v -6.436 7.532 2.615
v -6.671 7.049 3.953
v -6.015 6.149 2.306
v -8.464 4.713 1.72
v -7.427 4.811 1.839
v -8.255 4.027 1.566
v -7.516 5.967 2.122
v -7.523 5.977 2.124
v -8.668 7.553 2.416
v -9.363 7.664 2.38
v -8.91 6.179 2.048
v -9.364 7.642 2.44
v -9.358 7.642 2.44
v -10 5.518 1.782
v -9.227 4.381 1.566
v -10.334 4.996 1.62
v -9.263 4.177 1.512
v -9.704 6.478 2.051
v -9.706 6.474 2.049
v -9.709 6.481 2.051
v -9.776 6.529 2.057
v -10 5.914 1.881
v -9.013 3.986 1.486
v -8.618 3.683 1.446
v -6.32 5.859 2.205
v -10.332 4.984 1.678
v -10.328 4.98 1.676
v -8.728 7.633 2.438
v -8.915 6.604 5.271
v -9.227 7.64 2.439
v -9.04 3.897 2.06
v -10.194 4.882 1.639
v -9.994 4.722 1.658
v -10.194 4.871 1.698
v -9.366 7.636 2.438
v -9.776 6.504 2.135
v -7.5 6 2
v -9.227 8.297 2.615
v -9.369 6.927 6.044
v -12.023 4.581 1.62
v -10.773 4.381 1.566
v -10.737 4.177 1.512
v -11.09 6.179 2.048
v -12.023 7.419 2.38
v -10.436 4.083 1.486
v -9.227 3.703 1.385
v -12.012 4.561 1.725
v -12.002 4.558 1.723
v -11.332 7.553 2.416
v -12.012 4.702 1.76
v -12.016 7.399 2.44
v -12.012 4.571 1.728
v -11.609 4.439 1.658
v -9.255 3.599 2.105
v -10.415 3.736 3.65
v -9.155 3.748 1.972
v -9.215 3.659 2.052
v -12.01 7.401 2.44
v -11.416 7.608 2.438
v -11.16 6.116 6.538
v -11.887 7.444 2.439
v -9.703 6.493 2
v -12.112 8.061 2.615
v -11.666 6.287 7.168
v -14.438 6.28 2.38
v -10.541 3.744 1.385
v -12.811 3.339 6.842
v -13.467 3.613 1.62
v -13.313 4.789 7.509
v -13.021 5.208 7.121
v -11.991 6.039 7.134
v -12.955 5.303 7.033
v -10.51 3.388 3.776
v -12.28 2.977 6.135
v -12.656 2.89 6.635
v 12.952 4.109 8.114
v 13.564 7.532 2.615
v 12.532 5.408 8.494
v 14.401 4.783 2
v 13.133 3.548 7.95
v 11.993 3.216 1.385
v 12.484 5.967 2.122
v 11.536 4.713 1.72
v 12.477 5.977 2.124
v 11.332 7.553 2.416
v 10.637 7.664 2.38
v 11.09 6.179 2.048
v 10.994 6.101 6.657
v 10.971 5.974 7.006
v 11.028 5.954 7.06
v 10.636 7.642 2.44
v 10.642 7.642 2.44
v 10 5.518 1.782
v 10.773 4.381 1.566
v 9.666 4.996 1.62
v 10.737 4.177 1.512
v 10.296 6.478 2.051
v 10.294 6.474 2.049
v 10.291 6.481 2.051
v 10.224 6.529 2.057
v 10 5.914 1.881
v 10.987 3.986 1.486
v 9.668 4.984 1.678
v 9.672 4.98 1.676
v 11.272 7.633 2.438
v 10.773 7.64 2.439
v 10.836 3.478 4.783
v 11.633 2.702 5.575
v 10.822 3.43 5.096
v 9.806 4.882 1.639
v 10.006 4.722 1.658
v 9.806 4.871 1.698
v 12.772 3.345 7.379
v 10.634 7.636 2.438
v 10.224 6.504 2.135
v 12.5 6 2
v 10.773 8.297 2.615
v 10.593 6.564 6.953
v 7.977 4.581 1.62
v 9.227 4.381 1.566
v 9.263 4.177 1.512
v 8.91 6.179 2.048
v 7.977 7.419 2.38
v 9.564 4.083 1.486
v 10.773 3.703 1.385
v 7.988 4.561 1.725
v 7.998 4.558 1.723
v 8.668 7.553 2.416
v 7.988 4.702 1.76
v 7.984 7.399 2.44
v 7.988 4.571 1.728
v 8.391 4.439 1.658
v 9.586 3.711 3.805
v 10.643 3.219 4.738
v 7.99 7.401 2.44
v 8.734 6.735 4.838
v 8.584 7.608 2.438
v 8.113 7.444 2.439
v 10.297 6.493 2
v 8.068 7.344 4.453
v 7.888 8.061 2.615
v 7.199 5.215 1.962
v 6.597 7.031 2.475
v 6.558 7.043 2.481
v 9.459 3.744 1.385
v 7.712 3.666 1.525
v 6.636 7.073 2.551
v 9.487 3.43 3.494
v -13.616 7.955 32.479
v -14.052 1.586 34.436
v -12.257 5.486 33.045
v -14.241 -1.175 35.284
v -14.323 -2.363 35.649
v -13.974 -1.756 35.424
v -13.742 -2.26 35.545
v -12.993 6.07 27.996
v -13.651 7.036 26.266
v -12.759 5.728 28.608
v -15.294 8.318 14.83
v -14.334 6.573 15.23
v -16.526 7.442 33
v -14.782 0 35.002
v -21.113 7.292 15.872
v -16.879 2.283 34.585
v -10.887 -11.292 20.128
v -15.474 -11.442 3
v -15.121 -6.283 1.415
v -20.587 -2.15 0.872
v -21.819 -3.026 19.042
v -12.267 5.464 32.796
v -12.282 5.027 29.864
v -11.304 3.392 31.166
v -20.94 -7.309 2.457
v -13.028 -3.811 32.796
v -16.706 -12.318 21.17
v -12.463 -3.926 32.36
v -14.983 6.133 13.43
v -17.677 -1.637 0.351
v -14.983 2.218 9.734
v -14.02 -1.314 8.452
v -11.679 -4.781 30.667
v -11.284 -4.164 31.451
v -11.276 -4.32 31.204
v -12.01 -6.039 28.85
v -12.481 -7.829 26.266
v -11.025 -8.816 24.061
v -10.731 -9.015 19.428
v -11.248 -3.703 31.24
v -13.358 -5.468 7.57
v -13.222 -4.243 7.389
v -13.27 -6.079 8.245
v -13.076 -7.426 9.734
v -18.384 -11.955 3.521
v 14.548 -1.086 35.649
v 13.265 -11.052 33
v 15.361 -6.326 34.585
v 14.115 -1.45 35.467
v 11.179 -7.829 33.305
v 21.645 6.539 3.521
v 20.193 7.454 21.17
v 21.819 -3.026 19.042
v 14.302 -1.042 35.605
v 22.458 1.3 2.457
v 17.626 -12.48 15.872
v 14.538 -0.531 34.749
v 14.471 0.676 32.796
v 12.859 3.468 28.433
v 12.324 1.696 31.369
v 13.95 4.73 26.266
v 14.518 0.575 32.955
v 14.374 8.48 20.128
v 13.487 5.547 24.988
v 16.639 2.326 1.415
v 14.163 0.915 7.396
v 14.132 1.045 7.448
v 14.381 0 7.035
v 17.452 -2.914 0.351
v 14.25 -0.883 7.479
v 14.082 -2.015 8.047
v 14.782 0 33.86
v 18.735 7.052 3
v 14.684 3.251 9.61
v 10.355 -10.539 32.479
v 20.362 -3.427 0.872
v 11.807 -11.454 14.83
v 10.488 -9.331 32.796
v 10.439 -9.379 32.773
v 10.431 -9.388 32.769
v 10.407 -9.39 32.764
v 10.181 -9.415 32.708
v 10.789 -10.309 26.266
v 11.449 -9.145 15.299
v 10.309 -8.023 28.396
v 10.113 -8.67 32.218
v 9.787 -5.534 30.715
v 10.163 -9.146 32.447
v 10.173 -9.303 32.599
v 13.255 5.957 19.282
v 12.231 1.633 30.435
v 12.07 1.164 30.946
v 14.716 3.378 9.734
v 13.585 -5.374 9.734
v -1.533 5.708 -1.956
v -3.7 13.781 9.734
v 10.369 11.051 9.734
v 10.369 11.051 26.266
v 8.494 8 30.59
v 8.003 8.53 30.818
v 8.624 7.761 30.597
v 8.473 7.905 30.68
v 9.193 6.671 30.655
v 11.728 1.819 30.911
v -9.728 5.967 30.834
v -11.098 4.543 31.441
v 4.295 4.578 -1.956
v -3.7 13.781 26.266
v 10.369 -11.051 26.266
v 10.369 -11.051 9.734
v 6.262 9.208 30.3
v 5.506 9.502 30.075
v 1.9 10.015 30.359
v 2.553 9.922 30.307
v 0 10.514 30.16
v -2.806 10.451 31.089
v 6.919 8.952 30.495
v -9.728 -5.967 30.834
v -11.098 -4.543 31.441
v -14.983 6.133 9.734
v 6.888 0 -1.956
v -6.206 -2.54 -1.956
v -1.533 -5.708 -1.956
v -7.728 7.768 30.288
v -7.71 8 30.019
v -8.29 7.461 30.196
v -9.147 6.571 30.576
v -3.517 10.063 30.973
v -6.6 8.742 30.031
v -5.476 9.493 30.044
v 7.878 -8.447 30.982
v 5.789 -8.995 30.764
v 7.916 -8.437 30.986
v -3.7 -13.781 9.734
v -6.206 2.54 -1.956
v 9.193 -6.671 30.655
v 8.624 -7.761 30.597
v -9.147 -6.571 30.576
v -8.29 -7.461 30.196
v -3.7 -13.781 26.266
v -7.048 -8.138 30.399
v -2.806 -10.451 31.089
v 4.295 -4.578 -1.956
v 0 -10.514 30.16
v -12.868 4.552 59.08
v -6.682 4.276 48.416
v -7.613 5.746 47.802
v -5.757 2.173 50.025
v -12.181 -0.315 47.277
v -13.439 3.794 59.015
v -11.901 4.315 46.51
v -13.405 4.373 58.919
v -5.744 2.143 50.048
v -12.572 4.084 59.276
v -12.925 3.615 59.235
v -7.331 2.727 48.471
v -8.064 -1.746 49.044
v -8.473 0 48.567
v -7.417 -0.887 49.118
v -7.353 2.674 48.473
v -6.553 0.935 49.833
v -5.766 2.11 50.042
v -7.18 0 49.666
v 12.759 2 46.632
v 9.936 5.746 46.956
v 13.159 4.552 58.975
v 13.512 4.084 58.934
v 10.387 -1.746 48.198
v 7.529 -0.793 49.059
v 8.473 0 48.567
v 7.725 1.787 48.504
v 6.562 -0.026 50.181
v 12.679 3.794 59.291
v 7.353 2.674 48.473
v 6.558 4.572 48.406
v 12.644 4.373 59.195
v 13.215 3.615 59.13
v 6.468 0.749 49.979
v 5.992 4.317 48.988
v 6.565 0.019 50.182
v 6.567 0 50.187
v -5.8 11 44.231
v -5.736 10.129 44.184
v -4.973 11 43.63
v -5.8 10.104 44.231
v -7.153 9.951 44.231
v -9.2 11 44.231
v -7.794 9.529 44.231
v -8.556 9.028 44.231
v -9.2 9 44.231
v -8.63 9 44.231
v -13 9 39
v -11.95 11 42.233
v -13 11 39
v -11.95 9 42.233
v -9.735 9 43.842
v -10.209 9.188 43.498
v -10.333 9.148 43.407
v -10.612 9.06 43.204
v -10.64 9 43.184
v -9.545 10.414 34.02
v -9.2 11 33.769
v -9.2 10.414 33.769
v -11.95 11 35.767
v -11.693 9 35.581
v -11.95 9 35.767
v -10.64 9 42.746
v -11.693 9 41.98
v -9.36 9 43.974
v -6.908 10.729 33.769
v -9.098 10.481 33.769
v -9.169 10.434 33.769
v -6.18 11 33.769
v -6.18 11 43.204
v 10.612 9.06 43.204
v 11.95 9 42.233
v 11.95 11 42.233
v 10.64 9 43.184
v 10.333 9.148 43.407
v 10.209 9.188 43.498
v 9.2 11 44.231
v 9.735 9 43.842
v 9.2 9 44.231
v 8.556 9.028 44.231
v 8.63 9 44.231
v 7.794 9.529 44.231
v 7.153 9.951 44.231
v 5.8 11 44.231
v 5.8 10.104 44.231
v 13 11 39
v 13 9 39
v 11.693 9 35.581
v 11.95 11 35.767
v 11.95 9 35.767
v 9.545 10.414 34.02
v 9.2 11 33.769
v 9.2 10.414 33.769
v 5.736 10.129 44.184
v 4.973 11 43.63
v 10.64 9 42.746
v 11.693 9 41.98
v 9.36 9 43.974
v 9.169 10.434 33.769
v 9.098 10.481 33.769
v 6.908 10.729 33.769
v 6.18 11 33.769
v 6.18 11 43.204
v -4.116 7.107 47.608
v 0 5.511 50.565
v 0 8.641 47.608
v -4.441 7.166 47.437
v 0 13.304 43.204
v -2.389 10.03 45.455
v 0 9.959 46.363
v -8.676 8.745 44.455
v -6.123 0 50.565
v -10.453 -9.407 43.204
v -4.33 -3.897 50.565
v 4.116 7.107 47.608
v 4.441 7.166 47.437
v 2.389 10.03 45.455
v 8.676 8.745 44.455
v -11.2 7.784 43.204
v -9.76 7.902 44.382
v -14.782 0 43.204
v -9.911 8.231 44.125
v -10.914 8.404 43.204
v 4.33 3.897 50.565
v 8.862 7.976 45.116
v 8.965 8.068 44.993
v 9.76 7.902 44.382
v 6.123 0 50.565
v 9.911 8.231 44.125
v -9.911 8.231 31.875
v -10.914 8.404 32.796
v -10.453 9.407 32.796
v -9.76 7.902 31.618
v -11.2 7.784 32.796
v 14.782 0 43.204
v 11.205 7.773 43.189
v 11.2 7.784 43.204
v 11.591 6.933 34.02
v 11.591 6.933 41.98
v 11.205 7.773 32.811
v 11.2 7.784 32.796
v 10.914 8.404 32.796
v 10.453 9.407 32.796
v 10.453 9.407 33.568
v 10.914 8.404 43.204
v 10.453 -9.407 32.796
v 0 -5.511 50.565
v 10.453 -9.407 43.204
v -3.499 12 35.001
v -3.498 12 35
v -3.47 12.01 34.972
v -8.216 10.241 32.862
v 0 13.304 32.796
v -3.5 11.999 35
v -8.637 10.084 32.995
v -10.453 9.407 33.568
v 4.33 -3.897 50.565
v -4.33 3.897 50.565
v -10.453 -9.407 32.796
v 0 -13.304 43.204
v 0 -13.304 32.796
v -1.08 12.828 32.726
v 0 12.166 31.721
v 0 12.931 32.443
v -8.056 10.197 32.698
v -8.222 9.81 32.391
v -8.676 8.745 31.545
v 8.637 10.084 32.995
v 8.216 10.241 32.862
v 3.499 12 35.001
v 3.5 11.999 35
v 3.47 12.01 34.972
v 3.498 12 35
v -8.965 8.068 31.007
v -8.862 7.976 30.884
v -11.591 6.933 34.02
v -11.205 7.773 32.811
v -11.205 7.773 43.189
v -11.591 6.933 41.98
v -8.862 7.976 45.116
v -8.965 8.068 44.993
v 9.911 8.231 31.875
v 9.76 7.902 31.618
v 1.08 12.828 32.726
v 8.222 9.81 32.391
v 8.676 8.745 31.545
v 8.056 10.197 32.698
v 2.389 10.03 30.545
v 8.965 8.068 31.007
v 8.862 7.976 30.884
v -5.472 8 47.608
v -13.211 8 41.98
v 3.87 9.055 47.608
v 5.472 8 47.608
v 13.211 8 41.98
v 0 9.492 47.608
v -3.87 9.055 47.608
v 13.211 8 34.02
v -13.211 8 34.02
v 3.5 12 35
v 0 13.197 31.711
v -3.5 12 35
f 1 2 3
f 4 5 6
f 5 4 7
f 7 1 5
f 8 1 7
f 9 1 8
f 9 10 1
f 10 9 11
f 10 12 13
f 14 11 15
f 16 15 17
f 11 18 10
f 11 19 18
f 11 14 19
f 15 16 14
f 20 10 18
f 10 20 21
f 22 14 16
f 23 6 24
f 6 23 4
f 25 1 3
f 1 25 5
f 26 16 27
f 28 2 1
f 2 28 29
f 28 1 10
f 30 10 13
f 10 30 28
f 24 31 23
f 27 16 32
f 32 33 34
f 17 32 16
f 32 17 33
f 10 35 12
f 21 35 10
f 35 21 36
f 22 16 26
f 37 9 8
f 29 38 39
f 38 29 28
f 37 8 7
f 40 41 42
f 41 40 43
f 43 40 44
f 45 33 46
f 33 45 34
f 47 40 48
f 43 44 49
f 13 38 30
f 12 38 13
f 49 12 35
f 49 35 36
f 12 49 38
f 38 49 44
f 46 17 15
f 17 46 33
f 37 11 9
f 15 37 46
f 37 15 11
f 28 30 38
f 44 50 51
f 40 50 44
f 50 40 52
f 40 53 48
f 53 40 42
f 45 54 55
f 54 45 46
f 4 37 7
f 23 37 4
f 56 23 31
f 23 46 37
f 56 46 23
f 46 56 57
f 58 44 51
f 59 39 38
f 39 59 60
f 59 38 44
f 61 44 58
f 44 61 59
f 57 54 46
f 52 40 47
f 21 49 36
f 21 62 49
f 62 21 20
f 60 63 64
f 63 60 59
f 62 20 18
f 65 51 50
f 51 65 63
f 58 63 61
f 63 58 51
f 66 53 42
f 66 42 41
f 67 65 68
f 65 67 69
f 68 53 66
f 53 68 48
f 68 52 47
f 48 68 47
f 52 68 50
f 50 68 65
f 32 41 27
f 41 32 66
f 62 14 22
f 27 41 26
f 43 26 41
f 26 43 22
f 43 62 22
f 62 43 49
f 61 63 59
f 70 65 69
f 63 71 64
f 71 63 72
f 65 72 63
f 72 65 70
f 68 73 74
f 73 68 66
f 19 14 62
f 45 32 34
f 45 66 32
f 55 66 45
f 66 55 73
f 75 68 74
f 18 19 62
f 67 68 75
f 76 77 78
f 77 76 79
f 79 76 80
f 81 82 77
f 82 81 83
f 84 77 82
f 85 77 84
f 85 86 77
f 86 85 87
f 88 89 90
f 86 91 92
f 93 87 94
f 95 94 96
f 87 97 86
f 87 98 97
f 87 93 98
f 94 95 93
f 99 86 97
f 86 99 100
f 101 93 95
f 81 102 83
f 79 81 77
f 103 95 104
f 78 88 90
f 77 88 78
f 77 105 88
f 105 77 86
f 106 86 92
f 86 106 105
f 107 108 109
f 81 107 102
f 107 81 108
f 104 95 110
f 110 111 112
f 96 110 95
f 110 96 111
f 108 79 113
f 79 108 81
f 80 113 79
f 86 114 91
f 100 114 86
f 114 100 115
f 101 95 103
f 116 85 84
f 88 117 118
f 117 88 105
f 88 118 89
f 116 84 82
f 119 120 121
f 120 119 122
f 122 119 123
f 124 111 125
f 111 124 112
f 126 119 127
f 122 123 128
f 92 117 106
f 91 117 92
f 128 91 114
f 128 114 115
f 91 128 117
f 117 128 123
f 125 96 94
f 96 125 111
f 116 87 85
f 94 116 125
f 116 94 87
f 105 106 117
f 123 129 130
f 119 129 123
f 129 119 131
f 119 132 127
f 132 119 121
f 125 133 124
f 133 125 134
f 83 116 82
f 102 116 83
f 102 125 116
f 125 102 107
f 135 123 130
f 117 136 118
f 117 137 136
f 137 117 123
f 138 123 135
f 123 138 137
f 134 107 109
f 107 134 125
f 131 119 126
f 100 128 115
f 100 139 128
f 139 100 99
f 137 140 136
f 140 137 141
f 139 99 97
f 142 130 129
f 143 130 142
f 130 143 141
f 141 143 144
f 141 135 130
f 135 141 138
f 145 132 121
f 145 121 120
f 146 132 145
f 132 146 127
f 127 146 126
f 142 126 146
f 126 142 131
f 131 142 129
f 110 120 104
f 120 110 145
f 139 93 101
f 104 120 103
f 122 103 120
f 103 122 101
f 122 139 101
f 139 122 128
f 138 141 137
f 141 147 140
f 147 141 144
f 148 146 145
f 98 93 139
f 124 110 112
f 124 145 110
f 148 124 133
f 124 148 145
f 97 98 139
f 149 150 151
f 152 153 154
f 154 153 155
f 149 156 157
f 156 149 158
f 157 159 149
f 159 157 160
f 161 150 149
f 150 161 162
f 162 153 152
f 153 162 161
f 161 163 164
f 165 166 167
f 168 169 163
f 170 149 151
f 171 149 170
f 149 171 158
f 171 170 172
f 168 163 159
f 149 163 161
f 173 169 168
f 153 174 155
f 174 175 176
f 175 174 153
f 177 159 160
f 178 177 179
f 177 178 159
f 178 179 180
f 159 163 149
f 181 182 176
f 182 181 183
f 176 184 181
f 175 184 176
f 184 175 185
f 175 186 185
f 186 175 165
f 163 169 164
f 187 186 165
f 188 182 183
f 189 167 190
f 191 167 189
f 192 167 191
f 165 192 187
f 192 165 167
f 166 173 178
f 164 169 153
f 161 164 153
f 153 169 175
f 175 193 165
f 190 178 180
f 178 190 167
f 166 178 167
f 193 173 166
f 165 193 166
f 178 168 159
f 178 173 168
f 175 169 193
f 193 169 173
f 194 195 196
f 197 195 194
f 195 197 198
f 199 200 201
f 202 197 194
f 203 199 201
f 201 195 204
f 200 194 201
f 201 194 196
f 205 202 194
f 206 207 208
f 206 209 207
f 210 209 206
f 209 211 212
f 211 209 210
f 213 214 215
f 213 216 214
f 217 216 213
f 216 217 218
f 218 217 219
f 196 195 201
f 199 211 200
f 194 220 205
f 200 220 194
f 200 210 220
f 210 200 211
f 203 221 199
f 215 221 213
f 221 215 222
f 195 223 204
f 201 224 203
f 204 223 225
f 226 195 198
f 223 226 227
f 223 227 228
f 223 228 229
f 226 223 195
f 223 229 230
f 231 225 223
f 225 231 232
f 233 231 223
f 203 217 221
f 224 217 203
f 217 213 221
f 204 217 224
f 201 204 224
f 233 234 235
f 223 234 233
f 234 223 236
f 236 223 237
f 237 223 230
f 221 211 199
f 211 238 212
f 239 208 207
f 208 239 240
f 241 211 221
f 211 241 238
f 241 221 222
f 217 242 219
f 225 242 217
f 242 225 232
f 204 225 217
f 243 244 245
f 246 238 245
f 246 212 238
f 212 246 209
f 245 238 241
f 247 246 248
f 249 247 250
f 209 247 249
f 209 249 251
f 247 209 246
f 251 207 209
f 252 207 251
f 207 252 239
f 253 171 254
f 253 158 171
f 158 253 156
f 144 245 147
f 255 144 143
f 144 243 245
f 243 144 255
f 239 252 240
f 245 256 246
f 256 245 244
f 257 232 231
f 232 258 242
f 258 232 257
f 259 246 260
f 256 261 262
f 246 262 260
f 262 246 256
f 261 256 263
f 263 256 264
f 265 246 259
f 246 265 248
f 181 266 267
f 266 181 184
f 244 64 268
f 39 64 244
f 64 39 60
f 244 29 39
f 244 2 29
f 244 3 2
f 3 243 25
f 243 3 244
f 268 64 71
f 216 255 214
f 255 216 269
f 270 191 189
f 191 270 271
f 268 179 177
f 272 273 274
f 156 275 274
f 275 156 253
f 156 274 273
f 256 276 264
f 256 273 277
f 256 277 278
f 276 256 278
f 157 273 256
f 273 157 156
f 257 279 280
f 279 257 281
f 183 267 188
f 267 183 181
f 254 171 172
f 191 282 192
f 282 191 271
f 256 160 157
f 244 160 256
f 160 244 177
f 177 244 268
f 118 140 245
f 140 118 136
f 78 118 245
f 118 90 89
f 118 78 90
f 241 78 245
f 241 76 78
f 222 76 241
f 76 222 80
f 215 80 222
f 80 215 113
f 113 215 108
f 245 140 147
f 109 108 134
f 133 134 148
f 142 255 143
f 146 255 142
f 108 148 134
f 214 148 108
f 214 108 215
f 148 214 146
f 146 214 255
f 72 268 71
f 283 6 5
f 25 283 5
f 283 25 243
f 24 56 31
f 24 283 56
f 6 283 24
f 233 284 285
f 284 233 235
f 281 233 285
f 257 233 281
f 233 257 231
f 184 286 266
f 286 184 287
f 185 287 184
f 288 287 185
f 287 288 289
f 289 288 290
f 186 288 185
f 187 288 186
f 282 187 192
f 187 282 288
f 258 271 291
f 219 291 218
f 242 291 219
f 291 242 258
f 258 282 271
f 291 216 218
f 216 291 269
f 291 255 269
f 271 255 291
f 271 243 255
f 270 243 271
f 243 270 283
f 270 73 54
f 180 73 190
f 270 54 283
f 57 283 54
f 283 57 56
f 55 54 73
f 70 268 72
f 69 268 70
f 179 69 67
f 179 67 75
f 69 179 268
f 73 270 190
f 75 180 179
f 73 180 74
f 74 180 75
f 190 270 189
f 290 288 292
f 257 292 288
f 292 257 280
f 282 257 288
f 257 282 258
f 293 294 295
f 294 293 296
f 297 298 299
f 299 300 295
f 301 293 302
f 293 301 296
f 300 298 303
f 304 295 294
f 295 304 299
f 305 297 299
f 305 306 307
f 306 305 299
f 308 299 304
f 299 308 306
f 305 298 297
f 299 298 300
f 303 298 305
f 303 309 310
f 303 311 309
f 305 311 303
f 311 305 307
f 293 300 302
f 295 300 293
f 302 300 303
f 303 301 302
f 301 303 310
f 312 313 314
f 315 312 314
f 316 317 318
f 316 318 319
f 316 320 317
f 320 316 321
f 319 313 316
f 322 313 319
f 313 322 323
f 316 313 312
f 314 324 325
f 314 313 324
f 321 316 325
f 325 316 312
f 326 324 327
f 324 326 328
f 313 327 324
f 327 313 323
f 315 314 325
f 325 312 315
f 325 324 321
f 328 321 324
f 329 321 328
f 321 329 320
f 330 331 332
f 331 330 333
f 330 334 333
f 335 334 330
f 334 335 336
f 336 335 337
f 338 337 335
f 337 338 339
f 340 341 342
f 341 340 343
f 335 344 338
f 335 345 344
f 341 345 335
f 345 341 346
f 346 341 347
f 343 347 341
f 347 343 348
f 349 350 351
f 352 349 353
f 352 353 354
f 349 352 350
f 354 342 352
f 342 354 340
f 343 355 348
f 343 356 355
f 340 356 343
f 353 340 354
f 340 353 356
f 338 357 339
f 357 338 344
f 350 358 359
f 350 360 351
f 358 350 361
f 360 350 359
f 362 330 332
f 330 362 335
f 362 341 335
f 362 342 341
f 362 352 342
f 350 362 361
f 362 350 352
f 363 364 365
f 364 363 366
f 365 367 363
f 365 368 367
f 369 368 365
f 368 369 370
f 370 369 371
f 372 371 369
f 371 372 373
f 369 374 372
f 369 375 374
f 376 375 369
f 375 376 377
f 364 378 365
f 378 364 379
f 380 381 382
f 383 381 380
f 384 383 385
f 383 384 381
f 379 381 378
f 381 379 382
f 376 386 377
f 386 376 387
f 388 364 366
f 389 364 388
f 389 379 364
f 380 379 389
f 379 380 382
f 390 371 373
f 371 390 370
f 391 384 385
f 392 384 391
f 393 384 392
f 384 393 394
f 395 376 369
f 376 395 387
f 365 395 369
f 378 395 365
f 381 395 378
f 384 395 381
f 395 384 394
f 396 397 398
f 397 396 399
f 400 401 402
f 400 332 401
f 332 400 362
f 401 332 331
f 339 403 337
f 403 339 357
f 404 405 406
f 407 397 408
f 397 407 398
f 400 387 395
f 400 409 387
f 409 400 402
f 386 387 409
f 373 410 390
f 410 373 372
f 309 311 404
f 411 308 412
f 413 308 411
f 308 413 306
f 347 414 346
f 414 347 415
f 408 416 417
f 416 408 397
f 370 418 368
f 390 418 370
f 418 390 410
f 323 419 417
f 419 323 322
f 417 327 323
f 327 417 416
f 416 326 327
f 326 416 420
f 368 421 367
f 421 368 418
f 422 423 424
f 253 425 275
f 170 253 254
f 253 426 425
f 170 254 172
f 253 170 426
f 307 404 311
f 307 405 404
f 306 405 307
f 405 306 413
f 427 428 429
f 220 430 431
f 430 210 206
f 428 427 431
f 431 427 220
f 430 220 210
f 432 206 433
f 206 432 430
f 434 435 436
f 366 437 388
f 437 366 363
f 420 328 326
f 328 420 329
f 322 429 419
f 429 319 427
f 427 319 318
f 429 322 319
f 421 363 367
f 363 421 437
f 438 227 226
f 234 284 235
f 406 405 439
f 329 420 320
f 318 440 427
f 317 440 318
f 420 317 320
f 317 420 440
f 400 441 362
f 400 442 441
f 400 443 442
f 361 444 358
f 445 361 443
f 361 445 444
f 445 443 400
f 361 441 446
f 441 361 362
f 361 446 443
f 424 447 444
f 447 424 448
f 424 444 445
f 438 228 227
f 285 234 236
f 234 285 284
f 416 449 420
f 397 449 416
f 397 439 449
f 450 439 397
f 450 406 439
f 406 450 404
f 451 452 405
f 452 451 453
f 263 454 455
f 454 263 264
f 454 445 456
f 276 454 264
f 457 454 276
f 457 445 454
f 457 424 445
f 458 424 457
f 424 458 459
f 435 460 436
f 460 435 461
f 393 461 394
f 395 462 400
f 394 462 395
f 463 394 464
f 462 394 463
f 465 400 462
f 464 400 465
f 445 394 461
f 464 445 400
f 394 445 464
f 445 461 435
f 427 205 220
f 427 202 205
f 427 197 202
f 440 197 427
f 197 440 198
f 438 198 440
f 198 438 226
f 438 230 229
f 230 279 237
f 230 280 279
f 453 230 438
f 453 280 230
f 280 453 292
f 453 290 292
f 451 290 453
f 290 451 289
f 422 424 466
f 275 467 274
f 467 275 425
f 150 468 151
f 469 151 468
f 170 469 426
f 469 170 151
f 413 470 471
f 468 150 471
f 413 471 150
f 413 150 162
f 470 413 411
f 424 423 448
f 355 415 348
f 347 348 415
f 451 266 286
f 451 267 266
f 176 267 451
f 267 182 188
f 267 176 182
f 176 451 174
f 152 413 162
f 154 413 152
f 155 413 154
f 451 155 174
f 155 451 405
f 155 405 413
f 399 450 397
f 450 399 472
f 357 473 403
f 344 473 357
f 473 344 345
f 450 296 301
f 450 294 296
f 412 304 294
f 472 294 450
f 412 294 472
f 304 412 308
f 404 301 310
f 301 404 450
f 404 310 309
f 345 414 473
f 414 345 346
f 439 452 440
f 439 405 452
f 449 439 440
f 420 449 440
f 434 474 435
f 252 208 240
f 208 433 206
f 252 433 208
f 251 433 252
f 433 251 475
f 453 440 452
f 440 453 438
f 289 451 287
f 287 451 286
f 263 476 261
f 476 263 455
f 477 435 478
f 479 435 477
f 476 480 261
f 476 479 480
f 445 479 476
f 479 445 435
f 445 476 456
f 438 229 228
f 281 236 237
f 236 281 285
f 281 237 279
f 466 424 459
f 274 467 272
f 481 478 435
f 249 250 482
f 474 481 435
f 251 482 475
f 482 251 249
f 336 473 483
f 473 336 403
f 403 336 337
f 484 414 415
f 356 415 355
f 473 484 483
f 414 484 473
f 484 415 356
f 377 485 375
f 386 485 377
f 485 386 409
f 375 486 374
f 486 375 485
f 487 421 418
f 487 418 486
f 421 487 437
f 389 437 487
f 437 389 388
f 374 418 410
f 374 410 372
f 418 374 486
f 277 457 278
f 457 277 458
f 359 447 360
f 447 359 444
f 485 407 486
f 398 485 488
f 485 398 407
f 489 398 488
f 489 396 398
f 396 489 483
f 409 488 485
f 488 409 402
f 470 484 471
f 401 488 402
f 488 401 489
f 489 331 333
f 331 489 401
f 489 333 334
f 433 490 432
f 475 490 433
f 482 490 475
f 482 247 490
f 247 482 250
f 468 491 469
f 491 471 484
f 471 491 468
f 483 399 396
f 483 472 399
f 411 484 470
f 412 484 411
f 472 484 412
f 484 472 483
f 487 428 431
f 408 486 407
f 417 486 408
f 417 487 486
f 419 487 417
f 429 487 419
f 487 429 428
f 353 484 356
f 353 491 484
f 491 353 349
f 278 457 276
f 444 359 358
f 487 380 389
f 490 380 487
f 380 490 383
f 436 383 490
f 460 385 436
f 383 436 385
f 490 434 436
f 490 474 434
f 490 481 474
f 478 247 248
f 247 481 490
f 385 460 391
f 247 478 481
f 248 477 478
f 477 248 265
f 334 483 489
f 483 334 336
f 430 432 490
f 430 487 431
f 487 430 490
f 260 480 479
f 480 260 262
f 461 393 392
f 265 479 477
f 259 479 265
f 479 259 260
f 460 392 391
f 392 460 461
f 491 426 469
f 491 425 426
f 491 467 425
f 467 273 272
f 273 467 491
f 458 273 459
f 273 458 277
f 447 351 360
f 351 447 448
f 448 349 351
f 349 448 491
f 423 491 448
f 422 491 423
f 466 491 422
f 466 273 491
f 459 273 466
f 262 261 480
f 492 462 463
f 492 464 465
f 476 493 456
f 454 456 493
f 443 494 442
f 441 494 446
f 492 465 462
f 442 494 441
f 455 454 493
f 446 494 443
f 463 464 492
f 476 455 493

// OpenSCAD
// Low-Poly Wise Owl
// Date: 2026-07-24

// Palette
color_body = [0.45, 0.32, 0.23];       // Warm brown body
color_chest = [0.90, 0.85, 0.75];      // Cream chest feathers
color_eye_white = [0.98, 0.98, 0.98];  // White eye ring
color_eye_iris = [0.95, 0.70, 0.10];   // Gold iris
color_eye_pupil = [0.10, 0.10, 0.12];  // Dark pupil
color_beak = [0.95, 0.55, 0.10];       // Orange beak/feet
color_wing = [0.35, 0.24, 0.16];       // Darker brown wing
color_tuft = [0.30, 0.20, 0.12];       // Ear tufts

$fn = 8; // Low-poly aesthetic

module owl_foot() {
    color(color_beak) {
        for (a = [-20, 0, 20]) {
            rotate([0, 0, a])
            translate([0, 6, 2])
            rotate([15, 0, 0])
            cylinder(r1=2.5, r2=1, h=12, center=false, $fn=5);
        }
    }
}

module owl_body() {
    // Feet
    translate([-10, 0, 0]) owl_foot();
    translate([10, 0, 0]) owl_foot();

    // Main Body
    color(color_body) {
        translate([0, 0, 18])
        scale([1, 0.85, 1.2])
        sphere(r=18, $fn=7);
    }

    // Chest feathers
    color(color_chest) {
        translate([0, 6, 18])
        scale([0.7, 0.5, 0.9])
        sphere(r=16, $fn=7);
    }

    // Wings
    for (side = [-1, 1]) {
        color(color_wing) {
            translate([side * 16, -2, 18])
            rotate([side * 15, -side * 10, -side * 10])
            scale([0.4, 0.8, 1.3])
            sphere(r=15, $fn=6);
        }
    }
}

module owl_head() {
    // Head base
    color(color_body) {
        translate([0, 0, 38])
        scale([1, 0.9, 0.85])
        sphere(r=16, $fn=8);
    }

    // Facial disc / eye region
    color(color_chest) {
        translate([0, 8, 38])
        scale([1.1, 0.3, 0.8])
        sphere(r=13, $fn=8);
    }

    // Ear tufts / feather horns
    for (side = [-1, 1]) {
        color(color_tuft) {
            translate([side * 9, 2, 48])
            rotate([-10, side * 20, 0])
            cylinder(r1=4, r2=0.5, h=12, $fn=5);
        }
    }

    // Eyes (Large wise eyes)
    for (side = [-1, 1]) {
        translate([side * 7.5, 10, 39]) rotate([90, 0, 0]) {
            // White outer ring
            color(color_eye_white)
            cylinder(r=5.5, h=2, center=true, $fn=10);
            
            // Iris
            color(color_eye_iris)
            translate([0, 0, 0.8])
            cylinder(r=4, h=2, center=true, $fn=10);
            
            // Pupil
            color(color_eye_pupil)
            translate([0, 0, 1.5])
            cylinder(r=2.2, h=2, center=true, $fn=8);

            // Catchlight (tiny dot)
            color(color_eye_white)
            translate([1, 1, 2.2])
            cylinder(r=0.7, h=1, center=true, $fn=6);
        }
    }

    // Beak
    color(color_beak) {
        translate([0, 12, 35])
        rotate([110, 0, 0])
        cylinder(r1=3.5, r2=0.5, h=8, $fn=4);
    }
}

module owl() {
    owl_body();
    owl_head();
}

owl();
